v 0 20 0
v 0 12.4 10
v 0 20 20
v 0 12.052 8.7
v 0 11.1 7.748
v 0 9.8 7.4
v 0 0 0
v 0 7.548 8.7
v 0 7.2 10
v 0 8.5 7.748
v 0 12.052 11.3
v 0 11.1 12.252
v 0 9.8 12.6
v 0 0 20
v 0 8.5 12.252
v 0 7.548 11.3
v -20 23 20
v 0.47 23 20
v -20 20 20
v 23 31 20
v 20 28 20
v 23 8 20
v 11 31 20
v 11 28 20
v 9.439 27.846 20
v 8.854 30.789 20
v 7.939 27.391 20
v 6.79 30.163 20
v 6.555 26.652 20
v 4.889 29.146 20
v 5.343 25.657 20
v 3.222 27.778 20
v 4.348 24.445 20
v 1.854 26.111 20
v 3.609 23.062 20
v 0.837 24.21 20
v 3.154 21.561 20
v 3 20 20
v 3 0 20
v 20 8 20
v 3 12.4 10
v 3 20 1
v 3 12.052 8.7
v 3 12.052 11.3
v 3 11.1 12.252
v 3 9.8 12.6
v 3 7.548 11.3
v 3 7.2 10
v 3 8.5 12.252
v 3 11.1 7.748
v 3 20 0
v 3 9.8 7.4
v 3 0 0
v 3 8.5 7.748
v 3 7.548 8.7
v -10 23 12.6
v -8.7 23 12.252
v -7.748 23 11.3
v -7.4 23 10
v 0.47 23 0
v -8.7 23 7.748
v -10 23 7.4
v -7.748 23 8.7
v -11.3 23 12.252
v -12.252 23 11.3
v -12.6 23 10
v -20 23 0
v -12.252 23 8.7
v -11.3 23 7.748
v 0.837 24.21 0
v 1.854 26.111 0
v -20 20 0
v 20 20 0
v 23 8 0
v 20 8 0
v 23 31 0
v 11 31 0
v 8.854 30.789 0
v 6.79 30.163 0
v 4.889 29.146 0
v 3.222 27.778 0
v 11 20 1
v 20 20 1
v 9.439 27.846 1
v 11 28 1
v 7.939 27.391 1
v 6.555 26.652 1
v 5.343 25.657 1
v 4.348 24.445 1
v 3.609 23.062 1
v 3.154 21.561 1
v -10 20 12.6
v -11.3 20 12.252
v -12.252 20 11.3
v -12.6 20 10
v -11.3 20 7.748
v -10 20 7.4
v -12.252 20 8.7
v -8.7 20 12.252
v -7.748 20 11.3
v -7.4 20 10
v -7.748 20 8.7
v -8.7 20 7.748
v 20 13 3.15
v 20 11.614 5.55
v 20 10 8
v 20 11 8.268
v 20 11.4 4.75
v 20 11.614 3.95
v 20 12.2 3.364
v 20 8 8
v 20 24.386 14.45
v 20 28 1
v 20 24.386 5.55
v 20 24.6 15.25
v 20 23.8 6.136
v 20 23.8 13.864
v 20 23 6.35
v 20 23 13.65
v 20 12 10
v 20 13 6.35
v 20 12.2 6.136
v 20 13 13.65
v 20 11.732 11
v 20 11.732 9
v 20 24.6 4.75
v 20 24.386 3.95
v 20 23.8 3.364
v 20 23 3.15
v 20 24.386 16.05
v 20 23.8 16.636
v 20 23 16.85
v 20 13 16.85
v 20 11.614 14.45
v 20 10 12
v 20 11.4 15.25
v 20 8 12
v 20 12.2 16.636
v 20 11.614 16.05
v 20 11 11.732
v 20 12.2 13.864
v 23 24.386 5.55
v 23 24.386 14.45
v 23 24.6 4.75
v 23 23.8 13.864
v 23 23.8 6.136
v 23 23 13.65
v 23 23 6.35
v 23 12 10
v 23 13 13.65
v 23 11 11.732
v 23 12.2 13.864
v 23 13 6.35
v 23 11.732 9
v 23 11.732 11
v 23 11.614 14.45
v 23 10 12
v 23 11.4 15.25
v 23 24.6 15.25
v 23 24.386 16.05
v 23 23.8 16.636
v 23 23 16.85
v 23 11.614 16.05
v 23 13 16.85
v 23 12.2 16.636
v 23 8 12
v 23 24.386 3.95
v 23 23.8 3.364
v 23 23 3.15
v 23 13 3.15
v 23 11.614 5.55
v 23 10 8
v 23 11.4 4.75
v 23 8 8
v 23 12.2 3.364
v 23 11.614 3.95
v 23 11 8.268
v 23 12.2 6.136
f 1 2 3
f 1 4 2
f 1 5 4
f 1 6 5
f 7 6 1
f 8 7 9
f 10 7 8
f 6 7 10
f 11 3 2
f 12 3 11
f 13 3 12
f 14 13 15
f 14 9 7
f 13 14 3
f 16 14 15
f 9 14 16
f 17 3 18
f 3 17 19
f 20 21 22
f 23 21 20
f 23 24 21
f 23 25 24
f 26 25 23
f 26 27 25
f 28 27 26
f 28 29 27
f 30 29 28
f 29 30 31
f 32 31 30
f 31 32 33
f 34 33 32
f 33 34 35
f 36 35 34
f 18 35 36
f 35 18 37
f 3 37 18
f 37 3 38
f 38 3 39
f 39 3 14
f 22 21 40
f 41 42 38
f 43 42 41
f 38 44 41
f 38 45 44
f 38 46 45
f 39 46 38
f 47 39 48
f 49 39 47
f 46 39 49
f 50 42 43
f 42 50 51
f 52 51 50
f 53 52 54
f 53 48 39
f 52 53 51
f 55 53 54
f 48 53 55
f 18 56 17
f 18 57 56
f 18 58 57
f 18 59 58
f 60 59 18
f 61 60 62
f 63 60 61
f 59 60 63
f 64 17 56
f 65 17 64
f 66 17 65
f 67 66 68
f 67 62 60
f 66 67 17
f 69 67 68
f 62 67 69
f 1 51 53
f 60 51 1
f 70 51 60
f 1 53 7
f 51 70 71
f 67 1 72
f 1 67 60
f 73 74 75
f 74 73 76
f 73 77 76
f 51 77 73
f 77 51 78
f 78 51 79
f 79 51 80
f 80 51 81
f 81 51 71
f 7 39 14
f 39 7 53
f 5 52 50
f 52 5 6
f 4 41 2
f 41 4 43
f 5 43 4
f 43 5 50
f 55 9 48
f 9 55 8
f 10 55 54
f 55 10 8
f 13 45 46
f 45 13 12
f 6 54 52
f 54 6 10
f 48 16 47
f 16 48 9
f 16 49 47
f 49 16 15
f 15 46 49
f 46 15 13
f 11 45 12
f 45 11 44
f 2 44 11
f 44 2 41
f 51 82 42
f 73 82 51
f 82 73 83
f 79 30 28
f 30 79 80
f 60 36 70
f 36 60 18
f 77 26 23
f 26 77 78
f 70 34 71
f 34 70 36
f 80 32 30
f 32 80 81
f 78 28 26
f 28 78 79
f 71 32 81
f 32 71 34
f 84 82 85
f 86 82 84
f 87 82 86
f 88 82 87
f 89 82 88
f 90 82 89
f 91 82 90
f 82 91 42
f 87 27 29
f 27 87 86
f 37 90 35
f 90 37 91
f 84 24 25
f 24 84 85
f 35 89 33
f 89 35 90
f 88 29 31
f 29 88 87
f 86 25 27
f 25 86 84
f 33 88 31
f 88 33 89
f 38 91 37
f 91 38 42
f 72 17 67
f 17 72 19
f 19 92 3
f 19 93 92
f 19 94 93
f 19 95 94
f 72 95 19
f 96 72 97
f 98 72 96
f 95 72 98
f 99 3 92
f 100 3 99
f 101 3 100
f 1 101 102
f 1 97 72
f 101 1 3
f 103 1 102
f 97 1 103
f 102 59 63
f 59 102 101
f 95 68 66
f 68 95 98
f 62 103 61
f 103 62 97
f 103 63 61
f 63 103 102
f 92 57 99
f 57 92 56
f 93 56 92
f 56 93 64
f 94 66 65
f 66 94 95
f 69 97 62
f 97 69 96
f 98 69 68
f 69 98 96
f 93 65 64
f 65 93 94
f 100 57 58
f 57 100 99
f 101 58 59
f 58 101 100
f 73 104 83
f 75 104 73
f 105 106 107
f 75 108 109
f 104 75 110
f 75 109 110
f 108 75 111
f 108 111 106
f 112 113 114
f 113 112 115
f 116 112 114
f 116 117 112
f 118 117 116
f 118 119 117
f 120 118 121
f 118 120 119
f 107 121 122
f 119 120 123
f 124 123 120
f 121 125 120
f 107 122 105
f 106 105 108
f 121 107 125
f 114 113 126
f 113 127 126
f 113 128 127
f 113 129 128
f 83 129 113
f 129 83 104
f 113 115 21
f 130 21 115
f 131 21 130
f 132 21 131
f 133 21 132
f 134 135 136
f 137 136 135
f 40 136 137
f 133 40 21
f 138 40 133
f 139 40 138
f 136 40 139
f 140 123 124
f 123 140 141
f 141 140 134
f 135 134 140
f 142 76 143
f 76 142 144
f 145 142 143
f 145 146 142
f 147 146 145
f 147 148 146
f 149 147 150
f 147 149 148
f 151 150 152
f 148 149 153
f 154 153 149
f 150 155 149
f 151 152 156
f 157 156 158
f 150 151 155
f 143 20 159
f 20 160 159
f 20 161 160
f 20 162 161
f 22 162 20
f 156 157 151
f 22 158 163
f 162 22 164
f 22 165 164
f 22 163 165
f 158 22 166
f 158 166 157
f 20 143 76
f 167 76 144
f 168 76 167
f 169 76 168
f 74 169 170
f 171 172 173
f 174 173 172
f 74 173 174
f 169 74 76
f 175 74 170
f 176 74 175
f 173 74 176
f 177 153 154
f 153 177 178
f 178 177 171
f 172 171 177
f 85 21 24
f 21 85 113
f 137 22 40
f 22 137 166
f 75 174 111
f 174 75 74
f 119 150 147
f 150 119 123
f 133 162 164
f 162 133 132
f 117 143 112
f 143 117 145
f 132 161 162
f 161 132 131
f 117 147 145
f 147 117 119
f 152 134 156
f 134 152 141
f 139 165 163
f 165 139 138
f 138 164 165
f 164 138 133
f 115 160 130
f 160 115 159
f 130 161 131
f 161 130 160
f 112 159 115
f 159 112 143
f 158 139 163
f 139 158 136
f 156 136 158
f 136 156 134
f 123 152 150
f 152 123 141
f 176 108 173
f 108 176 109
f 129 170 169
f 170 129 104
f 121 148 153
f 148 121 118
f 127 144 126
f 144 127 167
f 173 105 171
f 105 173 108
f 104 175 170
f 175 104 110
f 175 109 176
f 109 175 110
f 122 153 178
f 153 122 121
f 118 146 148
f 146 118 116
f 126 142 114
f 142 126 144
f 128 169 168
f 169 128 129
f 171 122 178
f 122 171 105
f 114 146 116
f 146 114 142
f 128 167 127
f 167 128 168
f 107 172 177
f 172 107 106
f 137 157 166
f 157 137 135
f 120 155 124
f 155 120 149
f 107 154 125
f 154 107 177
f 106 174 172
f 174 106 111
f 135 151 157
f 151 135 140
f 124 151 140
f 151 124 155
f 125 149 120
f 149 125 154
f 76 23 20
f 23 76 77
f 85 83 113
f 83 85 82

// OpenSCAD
$fn = 12;

pro = 20; // largeur du profil alu

lx = 20; // decalage x
ly = 2; // decalage y
lay = 20; // long oblong


ep = 3; // epaisseur

esptr = 10.5; // espace trous end stop

difference(){ 
    //cube([ep,pro+lay/2-ly,pro]);
    cube([ep,pro+ep,pro]);
    translate([-1,pro/2-0.2,pro/2]) rotate([0,90,0]) cylinder(r=2.6, h=ep+2);
}

translate([lay/2-ly+ep,pro+lay/2-ly,0]) #cube([lx-(lay/2-ly),ep,pro]);
translate([lay/2-ly+ep,pro,0]) cube([lx-(lay/2-ly),lay/2-ly+ep,1]);


translate([0,pro,0]) {
    difference(){
        intersection(){
            cube([lay/2-ly+ep,lay/2-ly+ep,pro]);
            translate([lay/2-ly+ep,0,0]) cylinder(r=lay/2-ly+ep, h=pro, $fn=32);
        }
        translate([lay/2-ly+ep,0,1]) cylinder(r=lay/2-ly, h=pro, $fn=32);
    }
}

difference(){ 
    translate([-pro,pro,0]) cube([pro,ep,pro]);
    translate([-pro/2,pro-1,pro/2]) rotate([-90,0,0]) cylinder(r=2.6, h=ep+2);
}


translate([lx,pro-lay/2-ly,0]) difference(){ 
    cube([ep,lay,pro]);
    hull(){
        translate([-1,5,pro/2+esptr/2]) rotate([0,90,0]) cylinder(r=1.6, h=ep+2);
        translate([-1,lay-5,pro/2+esptr/2]) rotate([0,90,0]) cylinder(r=1.6, h=ep+2);
    }
    hull(){
        translate([-1,5,pro/2-esptr/2]) rotate([0,90,0]) cylinder(r=1.6, h=ep+2);
        translate([-1,lay-5,pro/2-esptr/2]) rotate([0,90,0]) cylinder(r=1.6, h=ep+2);
    }
    // tournevis
    hull(){
        translate([-1,lay/2+ly-pro/2,pro/2]) rotate([0,90,0]) cylinder(r=2, h=ep+2);
        translate([-1,0,pro/2]) rotate([0,90,0]) cylinder(r=2, h=ep+2);
    }
    
}
